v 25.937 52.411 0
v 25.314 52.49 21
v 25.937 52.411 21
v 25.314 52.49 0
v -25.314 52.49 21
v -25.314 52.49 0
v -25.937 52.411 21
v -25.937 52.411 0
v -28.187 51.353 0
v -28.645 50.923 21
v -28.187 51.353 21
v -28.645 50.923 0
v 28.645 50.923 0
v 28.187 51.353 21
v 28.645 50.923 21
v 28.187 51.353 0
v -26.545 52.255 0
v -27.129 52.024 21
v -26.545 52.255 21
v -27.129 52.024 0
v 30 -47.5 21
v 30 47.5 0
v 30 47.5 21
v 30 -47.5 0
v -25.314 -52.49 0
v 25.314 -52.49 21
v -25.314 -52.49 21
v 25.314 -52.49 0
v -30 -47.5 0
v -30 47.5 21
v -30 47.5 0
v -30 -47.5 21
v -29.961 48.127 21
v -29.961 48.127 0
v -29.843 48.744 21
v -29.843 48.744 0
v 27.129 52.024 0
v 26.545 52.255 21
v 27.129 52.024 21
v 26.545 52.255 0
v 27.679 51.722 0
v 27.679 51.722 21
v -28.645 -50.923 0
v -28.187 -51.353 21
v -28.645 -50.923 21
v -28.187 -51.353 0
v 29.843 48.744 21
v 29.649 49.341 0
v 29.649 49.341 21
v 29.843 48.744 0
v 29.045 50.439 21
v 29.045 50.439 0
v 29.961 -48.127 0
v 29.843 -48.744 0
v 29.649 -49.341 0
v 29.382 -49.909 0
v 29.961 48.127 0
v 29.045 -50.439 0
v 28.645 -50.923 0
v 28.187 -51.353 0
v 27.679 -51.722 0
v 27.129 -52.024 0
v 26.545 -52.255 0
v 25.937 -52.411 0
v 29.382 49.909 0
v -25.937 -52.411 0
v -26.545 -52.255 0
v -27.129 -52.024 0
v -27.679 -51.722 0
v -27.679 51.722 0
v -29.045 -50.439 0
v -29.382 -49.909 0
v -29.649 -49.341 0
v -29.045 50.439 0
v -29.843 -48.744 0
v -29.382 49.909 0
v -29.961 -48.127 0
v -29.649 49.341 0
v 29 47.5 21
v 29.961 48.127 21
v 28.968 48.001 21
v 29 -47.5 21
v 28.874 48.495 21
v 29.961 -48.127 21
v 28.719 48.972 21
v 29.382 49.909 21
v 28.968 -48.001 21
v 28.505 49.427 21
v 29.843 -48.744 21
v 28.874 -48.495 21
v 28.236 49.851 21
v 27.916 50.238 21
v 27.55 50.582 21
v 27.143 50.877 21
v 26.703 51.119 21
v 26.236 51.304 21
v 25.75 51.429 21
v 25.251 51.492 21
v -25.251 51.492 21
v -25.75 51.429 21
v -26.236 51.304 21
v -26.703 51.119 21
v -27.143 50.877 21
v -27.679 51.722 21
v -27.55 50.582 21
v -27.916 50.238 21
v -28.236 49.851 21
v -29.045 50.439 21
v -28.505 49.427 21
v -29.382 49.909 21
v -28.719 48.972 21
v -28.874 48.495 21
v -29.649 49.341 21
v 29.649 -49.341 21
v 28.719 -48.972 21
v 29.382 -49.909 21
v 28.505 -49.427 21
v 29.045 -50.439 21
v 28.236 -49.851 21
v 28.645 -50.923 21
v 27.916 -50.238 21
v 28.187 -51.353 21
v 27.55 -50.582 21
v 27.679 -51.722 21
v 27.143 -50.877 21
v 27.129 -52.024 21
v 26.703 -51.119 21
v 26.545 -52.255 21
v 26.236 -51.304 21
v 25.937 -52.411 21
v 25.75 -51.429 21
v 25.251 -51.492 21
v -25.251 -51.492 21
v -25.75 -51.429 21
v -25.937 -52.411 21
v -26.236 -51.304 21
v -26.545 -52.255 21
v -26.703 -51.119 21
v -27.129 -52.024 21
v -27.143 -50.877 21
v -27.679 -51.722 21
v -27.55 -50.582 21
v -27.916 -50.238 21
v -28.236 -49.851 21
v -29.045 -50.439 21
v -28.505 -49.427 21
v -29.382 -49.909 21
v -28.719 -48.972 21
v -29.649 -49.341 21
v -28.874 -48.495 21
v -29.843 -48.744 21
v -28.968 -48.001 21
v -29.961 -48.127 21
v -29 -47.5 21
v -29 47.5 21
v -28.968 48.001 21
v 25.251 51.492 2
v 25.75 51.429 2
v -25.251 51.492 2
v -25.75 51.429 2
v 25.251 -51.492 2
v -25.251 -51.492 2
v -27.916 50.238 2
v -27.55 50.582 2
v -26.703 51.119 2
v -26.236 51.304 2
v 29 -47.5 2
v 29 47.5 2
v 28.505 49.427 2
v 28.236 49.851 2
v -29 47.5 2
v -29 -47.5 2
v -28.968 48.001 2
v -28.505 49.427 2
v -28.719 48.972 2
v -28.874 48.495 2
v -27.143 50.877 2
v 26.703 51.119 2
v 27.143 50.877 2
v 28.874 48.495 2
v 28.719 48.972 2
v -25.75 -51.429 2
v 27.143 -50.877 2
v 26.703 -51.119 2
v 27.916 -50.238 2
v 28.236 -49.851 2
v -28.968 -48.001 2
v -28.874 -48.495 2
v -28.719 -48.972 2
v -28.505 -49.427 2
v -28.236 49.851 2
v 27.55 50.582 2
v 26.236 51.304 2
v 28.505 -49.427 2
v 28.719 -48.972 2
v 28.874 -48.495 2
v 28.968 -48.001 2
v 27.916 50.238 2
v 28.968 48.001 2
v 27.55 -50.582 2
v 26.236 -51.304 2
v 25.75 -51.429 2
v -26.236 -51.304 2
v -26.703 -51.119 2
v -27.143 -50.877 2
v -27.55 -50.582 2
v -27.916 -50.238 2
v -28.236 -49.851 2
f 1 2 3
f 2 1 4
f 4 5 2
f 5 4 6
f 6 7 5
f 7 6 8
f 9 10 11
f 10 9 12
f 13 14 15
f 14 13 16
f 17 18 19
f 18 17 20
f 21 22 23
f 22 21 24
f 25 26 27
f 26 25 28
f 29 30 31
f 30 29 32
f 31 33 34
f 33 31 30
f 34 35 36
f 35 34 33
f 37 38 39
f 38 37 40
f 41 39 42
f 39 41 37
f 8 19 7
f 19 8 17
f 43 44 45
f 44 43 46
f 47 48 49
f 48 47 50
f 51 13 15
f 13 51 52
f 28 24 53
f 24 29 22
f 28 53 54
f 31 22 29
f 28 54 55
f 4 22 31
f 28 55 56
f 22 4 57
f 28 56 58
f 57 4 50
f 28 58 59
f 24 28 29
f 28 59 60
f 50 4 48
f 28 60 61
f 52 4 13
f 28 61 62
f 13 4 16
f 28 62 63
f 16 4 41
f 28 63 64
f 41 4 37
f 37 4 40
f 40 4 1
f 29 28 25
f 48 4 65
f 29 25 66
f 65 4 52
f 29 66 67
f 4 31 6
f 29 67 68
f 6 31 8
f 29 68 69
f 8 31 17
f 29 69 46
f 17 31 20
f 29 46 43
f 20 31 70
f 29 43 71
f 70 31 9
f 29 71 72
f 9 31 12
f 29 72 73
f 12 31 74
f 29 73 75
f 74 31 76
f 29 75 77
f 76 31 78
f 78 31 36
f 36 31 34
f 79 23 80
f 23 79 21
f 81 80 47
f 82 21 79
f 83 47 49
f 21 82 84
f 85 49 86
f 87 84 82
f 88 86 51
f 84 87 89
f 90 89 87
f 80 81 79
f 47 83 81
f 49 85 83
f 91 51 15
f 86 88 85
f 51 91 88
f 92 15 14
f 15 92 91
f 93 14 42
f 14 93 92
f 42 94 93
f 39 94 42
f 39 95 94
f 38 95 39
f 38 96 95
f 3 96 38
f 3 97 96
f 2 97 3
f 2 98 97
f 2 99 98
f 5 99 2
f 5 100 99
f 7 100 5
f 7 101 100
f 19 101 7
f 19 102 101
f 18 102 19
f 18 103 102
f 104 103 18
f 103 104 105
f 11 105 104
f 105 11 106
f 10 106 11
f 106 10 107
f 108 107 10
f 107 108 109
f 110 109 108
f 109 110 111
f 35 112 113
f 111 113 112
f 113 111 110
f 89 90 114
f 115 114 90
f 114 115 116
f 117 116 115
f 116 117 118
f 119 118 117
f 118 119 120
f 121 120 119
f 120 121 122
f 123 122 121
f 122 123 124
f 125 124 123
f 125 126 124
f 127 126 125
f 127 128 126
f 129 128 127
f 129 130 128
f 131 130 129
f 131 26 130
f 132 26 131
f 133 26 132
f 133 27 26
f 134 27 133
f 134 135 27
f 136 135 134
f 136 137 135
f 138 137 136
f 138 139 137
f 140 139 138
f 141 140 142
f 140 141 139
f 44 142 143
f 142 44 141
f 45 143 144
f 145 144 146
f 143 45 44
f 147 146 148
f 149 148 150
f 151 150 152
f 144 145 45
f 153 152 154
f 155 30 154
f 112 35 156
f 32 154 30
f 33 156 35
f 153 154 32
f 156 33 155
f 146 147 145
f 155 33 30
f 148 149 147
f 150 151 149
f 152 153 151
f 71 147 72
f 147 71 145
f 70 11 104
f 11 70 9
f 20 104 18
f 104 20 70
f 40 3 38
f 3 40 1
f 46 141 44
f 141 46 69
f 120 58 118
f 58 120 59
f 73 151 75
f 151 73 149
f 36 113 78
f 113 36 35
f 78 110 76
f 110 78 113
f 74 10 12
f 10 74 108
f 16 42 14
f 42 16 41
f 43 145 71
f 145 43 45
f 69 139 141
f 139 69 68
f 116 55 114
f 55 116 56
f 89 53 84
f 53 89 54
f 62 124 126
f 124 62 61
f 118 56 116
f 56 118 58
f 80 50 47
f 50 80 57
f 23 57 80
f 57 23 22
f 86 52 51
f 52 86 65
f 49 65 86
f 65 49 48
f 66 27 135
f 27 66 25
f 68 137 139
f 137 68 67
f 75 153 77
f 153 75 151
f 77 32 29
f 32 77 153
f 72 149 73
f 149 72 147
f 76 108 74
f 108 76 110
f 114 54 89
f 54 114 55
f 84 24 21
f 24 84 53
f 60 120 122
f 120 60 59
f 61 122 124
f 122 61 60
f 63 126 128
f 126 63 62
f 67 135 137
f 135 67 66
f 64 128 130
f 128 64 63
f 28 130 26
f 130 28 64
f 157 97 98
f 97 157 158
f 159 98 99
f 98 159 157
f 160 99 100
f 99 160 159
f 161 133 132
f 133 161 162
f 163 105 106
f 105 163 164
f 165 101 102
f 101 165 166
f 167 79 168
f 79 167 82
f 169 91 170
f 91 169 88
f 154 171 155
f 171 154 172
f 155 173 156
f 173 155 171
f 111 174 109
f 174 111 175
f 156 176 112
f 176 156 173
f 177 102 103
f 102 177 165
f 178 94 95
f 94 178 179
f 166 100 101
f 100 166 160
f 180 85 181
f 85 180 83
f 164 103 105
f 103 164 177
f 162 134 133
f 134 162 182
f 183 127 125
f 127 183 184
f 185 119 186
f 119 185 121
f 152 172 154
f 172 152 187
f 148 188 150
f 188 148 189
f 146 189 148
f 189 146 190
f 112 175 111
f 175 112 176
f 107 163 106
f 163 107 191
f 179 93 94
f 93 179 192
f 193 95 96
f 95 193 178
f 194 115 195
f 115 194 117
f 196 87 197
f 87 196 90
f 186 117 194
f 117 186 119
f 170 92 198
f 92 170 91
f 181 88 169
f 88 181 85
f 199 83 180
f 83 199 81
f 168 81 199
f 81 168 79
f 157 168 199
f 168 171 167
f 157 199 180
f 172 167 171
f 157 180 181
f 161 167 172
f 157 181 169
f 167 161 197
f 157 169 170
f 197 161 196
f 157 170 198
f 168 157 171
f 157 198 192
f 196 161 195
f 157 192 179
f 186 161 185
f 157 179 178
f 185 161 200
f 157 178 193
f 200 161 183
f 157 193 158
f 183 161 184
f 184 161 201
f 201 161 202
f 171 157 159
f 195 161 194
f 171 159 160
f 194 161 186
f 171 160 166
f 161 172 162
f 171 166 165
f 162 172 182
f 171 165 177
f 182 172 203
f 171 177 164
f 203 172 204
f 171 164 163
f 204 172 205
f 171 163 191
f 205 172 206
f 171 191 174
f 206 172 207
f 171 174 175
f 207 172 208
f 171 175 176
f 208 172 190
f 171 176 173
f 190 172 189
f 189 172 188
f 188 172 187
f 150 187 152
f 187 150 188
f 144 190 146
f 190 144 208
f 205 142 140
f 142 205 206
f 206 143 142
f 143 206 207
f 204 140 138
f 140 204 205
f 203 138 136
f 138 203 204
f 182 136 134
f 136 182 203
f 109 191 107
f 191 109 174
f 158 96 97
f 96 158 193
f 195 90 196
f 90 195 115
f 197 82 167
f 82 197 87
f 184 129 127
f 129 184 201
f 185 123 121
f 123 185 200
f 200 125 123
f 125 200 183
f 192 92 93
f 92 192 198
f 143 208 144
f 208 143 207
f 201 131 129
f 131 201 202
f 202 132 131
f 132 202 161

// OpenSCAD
$fn = 50;


difference() {
	union() {
		hull() {
			translate(v = [-25.0000000000, 47.5000000000, 0]) {
				cylinder(h = 21, r = 5);
			}
			translate(v = [25.0000000000, 47.5000000000, 0]) {
				cylinder(h = 21, r = 5);
			}
			translate(v = [-25.0000000000, -47.5000000000, 0]) {
				cylinder(h = 21, r = 5);
			}
			translate(v = [25.0000000000, -47.5000000000, 0]) {
				cylinder(h = 21, r = 5);
			}
		}
	}
	union() {
		translate(v = [0, 0, 2]) {
			hull() {
				translate(v = [-25.0000000000, 47.5000000000, 0]) {
					cylinder(h = 19, r = 4);
				}
				translate(v = [25.0000000000, 47.5000000000, 0]) {
					cylinder(h = 19, r = 4);
				}
				translate(v = [-25.0000000000, -47.5000000000, 0]) {
					cylinder(h = 19, r = 4);
				}
				translate(v = [25.0000000000, -47.5000000000, 0]) {
					cylinder(h = 19, r = 4);
				}
			}
		}
	}
}
